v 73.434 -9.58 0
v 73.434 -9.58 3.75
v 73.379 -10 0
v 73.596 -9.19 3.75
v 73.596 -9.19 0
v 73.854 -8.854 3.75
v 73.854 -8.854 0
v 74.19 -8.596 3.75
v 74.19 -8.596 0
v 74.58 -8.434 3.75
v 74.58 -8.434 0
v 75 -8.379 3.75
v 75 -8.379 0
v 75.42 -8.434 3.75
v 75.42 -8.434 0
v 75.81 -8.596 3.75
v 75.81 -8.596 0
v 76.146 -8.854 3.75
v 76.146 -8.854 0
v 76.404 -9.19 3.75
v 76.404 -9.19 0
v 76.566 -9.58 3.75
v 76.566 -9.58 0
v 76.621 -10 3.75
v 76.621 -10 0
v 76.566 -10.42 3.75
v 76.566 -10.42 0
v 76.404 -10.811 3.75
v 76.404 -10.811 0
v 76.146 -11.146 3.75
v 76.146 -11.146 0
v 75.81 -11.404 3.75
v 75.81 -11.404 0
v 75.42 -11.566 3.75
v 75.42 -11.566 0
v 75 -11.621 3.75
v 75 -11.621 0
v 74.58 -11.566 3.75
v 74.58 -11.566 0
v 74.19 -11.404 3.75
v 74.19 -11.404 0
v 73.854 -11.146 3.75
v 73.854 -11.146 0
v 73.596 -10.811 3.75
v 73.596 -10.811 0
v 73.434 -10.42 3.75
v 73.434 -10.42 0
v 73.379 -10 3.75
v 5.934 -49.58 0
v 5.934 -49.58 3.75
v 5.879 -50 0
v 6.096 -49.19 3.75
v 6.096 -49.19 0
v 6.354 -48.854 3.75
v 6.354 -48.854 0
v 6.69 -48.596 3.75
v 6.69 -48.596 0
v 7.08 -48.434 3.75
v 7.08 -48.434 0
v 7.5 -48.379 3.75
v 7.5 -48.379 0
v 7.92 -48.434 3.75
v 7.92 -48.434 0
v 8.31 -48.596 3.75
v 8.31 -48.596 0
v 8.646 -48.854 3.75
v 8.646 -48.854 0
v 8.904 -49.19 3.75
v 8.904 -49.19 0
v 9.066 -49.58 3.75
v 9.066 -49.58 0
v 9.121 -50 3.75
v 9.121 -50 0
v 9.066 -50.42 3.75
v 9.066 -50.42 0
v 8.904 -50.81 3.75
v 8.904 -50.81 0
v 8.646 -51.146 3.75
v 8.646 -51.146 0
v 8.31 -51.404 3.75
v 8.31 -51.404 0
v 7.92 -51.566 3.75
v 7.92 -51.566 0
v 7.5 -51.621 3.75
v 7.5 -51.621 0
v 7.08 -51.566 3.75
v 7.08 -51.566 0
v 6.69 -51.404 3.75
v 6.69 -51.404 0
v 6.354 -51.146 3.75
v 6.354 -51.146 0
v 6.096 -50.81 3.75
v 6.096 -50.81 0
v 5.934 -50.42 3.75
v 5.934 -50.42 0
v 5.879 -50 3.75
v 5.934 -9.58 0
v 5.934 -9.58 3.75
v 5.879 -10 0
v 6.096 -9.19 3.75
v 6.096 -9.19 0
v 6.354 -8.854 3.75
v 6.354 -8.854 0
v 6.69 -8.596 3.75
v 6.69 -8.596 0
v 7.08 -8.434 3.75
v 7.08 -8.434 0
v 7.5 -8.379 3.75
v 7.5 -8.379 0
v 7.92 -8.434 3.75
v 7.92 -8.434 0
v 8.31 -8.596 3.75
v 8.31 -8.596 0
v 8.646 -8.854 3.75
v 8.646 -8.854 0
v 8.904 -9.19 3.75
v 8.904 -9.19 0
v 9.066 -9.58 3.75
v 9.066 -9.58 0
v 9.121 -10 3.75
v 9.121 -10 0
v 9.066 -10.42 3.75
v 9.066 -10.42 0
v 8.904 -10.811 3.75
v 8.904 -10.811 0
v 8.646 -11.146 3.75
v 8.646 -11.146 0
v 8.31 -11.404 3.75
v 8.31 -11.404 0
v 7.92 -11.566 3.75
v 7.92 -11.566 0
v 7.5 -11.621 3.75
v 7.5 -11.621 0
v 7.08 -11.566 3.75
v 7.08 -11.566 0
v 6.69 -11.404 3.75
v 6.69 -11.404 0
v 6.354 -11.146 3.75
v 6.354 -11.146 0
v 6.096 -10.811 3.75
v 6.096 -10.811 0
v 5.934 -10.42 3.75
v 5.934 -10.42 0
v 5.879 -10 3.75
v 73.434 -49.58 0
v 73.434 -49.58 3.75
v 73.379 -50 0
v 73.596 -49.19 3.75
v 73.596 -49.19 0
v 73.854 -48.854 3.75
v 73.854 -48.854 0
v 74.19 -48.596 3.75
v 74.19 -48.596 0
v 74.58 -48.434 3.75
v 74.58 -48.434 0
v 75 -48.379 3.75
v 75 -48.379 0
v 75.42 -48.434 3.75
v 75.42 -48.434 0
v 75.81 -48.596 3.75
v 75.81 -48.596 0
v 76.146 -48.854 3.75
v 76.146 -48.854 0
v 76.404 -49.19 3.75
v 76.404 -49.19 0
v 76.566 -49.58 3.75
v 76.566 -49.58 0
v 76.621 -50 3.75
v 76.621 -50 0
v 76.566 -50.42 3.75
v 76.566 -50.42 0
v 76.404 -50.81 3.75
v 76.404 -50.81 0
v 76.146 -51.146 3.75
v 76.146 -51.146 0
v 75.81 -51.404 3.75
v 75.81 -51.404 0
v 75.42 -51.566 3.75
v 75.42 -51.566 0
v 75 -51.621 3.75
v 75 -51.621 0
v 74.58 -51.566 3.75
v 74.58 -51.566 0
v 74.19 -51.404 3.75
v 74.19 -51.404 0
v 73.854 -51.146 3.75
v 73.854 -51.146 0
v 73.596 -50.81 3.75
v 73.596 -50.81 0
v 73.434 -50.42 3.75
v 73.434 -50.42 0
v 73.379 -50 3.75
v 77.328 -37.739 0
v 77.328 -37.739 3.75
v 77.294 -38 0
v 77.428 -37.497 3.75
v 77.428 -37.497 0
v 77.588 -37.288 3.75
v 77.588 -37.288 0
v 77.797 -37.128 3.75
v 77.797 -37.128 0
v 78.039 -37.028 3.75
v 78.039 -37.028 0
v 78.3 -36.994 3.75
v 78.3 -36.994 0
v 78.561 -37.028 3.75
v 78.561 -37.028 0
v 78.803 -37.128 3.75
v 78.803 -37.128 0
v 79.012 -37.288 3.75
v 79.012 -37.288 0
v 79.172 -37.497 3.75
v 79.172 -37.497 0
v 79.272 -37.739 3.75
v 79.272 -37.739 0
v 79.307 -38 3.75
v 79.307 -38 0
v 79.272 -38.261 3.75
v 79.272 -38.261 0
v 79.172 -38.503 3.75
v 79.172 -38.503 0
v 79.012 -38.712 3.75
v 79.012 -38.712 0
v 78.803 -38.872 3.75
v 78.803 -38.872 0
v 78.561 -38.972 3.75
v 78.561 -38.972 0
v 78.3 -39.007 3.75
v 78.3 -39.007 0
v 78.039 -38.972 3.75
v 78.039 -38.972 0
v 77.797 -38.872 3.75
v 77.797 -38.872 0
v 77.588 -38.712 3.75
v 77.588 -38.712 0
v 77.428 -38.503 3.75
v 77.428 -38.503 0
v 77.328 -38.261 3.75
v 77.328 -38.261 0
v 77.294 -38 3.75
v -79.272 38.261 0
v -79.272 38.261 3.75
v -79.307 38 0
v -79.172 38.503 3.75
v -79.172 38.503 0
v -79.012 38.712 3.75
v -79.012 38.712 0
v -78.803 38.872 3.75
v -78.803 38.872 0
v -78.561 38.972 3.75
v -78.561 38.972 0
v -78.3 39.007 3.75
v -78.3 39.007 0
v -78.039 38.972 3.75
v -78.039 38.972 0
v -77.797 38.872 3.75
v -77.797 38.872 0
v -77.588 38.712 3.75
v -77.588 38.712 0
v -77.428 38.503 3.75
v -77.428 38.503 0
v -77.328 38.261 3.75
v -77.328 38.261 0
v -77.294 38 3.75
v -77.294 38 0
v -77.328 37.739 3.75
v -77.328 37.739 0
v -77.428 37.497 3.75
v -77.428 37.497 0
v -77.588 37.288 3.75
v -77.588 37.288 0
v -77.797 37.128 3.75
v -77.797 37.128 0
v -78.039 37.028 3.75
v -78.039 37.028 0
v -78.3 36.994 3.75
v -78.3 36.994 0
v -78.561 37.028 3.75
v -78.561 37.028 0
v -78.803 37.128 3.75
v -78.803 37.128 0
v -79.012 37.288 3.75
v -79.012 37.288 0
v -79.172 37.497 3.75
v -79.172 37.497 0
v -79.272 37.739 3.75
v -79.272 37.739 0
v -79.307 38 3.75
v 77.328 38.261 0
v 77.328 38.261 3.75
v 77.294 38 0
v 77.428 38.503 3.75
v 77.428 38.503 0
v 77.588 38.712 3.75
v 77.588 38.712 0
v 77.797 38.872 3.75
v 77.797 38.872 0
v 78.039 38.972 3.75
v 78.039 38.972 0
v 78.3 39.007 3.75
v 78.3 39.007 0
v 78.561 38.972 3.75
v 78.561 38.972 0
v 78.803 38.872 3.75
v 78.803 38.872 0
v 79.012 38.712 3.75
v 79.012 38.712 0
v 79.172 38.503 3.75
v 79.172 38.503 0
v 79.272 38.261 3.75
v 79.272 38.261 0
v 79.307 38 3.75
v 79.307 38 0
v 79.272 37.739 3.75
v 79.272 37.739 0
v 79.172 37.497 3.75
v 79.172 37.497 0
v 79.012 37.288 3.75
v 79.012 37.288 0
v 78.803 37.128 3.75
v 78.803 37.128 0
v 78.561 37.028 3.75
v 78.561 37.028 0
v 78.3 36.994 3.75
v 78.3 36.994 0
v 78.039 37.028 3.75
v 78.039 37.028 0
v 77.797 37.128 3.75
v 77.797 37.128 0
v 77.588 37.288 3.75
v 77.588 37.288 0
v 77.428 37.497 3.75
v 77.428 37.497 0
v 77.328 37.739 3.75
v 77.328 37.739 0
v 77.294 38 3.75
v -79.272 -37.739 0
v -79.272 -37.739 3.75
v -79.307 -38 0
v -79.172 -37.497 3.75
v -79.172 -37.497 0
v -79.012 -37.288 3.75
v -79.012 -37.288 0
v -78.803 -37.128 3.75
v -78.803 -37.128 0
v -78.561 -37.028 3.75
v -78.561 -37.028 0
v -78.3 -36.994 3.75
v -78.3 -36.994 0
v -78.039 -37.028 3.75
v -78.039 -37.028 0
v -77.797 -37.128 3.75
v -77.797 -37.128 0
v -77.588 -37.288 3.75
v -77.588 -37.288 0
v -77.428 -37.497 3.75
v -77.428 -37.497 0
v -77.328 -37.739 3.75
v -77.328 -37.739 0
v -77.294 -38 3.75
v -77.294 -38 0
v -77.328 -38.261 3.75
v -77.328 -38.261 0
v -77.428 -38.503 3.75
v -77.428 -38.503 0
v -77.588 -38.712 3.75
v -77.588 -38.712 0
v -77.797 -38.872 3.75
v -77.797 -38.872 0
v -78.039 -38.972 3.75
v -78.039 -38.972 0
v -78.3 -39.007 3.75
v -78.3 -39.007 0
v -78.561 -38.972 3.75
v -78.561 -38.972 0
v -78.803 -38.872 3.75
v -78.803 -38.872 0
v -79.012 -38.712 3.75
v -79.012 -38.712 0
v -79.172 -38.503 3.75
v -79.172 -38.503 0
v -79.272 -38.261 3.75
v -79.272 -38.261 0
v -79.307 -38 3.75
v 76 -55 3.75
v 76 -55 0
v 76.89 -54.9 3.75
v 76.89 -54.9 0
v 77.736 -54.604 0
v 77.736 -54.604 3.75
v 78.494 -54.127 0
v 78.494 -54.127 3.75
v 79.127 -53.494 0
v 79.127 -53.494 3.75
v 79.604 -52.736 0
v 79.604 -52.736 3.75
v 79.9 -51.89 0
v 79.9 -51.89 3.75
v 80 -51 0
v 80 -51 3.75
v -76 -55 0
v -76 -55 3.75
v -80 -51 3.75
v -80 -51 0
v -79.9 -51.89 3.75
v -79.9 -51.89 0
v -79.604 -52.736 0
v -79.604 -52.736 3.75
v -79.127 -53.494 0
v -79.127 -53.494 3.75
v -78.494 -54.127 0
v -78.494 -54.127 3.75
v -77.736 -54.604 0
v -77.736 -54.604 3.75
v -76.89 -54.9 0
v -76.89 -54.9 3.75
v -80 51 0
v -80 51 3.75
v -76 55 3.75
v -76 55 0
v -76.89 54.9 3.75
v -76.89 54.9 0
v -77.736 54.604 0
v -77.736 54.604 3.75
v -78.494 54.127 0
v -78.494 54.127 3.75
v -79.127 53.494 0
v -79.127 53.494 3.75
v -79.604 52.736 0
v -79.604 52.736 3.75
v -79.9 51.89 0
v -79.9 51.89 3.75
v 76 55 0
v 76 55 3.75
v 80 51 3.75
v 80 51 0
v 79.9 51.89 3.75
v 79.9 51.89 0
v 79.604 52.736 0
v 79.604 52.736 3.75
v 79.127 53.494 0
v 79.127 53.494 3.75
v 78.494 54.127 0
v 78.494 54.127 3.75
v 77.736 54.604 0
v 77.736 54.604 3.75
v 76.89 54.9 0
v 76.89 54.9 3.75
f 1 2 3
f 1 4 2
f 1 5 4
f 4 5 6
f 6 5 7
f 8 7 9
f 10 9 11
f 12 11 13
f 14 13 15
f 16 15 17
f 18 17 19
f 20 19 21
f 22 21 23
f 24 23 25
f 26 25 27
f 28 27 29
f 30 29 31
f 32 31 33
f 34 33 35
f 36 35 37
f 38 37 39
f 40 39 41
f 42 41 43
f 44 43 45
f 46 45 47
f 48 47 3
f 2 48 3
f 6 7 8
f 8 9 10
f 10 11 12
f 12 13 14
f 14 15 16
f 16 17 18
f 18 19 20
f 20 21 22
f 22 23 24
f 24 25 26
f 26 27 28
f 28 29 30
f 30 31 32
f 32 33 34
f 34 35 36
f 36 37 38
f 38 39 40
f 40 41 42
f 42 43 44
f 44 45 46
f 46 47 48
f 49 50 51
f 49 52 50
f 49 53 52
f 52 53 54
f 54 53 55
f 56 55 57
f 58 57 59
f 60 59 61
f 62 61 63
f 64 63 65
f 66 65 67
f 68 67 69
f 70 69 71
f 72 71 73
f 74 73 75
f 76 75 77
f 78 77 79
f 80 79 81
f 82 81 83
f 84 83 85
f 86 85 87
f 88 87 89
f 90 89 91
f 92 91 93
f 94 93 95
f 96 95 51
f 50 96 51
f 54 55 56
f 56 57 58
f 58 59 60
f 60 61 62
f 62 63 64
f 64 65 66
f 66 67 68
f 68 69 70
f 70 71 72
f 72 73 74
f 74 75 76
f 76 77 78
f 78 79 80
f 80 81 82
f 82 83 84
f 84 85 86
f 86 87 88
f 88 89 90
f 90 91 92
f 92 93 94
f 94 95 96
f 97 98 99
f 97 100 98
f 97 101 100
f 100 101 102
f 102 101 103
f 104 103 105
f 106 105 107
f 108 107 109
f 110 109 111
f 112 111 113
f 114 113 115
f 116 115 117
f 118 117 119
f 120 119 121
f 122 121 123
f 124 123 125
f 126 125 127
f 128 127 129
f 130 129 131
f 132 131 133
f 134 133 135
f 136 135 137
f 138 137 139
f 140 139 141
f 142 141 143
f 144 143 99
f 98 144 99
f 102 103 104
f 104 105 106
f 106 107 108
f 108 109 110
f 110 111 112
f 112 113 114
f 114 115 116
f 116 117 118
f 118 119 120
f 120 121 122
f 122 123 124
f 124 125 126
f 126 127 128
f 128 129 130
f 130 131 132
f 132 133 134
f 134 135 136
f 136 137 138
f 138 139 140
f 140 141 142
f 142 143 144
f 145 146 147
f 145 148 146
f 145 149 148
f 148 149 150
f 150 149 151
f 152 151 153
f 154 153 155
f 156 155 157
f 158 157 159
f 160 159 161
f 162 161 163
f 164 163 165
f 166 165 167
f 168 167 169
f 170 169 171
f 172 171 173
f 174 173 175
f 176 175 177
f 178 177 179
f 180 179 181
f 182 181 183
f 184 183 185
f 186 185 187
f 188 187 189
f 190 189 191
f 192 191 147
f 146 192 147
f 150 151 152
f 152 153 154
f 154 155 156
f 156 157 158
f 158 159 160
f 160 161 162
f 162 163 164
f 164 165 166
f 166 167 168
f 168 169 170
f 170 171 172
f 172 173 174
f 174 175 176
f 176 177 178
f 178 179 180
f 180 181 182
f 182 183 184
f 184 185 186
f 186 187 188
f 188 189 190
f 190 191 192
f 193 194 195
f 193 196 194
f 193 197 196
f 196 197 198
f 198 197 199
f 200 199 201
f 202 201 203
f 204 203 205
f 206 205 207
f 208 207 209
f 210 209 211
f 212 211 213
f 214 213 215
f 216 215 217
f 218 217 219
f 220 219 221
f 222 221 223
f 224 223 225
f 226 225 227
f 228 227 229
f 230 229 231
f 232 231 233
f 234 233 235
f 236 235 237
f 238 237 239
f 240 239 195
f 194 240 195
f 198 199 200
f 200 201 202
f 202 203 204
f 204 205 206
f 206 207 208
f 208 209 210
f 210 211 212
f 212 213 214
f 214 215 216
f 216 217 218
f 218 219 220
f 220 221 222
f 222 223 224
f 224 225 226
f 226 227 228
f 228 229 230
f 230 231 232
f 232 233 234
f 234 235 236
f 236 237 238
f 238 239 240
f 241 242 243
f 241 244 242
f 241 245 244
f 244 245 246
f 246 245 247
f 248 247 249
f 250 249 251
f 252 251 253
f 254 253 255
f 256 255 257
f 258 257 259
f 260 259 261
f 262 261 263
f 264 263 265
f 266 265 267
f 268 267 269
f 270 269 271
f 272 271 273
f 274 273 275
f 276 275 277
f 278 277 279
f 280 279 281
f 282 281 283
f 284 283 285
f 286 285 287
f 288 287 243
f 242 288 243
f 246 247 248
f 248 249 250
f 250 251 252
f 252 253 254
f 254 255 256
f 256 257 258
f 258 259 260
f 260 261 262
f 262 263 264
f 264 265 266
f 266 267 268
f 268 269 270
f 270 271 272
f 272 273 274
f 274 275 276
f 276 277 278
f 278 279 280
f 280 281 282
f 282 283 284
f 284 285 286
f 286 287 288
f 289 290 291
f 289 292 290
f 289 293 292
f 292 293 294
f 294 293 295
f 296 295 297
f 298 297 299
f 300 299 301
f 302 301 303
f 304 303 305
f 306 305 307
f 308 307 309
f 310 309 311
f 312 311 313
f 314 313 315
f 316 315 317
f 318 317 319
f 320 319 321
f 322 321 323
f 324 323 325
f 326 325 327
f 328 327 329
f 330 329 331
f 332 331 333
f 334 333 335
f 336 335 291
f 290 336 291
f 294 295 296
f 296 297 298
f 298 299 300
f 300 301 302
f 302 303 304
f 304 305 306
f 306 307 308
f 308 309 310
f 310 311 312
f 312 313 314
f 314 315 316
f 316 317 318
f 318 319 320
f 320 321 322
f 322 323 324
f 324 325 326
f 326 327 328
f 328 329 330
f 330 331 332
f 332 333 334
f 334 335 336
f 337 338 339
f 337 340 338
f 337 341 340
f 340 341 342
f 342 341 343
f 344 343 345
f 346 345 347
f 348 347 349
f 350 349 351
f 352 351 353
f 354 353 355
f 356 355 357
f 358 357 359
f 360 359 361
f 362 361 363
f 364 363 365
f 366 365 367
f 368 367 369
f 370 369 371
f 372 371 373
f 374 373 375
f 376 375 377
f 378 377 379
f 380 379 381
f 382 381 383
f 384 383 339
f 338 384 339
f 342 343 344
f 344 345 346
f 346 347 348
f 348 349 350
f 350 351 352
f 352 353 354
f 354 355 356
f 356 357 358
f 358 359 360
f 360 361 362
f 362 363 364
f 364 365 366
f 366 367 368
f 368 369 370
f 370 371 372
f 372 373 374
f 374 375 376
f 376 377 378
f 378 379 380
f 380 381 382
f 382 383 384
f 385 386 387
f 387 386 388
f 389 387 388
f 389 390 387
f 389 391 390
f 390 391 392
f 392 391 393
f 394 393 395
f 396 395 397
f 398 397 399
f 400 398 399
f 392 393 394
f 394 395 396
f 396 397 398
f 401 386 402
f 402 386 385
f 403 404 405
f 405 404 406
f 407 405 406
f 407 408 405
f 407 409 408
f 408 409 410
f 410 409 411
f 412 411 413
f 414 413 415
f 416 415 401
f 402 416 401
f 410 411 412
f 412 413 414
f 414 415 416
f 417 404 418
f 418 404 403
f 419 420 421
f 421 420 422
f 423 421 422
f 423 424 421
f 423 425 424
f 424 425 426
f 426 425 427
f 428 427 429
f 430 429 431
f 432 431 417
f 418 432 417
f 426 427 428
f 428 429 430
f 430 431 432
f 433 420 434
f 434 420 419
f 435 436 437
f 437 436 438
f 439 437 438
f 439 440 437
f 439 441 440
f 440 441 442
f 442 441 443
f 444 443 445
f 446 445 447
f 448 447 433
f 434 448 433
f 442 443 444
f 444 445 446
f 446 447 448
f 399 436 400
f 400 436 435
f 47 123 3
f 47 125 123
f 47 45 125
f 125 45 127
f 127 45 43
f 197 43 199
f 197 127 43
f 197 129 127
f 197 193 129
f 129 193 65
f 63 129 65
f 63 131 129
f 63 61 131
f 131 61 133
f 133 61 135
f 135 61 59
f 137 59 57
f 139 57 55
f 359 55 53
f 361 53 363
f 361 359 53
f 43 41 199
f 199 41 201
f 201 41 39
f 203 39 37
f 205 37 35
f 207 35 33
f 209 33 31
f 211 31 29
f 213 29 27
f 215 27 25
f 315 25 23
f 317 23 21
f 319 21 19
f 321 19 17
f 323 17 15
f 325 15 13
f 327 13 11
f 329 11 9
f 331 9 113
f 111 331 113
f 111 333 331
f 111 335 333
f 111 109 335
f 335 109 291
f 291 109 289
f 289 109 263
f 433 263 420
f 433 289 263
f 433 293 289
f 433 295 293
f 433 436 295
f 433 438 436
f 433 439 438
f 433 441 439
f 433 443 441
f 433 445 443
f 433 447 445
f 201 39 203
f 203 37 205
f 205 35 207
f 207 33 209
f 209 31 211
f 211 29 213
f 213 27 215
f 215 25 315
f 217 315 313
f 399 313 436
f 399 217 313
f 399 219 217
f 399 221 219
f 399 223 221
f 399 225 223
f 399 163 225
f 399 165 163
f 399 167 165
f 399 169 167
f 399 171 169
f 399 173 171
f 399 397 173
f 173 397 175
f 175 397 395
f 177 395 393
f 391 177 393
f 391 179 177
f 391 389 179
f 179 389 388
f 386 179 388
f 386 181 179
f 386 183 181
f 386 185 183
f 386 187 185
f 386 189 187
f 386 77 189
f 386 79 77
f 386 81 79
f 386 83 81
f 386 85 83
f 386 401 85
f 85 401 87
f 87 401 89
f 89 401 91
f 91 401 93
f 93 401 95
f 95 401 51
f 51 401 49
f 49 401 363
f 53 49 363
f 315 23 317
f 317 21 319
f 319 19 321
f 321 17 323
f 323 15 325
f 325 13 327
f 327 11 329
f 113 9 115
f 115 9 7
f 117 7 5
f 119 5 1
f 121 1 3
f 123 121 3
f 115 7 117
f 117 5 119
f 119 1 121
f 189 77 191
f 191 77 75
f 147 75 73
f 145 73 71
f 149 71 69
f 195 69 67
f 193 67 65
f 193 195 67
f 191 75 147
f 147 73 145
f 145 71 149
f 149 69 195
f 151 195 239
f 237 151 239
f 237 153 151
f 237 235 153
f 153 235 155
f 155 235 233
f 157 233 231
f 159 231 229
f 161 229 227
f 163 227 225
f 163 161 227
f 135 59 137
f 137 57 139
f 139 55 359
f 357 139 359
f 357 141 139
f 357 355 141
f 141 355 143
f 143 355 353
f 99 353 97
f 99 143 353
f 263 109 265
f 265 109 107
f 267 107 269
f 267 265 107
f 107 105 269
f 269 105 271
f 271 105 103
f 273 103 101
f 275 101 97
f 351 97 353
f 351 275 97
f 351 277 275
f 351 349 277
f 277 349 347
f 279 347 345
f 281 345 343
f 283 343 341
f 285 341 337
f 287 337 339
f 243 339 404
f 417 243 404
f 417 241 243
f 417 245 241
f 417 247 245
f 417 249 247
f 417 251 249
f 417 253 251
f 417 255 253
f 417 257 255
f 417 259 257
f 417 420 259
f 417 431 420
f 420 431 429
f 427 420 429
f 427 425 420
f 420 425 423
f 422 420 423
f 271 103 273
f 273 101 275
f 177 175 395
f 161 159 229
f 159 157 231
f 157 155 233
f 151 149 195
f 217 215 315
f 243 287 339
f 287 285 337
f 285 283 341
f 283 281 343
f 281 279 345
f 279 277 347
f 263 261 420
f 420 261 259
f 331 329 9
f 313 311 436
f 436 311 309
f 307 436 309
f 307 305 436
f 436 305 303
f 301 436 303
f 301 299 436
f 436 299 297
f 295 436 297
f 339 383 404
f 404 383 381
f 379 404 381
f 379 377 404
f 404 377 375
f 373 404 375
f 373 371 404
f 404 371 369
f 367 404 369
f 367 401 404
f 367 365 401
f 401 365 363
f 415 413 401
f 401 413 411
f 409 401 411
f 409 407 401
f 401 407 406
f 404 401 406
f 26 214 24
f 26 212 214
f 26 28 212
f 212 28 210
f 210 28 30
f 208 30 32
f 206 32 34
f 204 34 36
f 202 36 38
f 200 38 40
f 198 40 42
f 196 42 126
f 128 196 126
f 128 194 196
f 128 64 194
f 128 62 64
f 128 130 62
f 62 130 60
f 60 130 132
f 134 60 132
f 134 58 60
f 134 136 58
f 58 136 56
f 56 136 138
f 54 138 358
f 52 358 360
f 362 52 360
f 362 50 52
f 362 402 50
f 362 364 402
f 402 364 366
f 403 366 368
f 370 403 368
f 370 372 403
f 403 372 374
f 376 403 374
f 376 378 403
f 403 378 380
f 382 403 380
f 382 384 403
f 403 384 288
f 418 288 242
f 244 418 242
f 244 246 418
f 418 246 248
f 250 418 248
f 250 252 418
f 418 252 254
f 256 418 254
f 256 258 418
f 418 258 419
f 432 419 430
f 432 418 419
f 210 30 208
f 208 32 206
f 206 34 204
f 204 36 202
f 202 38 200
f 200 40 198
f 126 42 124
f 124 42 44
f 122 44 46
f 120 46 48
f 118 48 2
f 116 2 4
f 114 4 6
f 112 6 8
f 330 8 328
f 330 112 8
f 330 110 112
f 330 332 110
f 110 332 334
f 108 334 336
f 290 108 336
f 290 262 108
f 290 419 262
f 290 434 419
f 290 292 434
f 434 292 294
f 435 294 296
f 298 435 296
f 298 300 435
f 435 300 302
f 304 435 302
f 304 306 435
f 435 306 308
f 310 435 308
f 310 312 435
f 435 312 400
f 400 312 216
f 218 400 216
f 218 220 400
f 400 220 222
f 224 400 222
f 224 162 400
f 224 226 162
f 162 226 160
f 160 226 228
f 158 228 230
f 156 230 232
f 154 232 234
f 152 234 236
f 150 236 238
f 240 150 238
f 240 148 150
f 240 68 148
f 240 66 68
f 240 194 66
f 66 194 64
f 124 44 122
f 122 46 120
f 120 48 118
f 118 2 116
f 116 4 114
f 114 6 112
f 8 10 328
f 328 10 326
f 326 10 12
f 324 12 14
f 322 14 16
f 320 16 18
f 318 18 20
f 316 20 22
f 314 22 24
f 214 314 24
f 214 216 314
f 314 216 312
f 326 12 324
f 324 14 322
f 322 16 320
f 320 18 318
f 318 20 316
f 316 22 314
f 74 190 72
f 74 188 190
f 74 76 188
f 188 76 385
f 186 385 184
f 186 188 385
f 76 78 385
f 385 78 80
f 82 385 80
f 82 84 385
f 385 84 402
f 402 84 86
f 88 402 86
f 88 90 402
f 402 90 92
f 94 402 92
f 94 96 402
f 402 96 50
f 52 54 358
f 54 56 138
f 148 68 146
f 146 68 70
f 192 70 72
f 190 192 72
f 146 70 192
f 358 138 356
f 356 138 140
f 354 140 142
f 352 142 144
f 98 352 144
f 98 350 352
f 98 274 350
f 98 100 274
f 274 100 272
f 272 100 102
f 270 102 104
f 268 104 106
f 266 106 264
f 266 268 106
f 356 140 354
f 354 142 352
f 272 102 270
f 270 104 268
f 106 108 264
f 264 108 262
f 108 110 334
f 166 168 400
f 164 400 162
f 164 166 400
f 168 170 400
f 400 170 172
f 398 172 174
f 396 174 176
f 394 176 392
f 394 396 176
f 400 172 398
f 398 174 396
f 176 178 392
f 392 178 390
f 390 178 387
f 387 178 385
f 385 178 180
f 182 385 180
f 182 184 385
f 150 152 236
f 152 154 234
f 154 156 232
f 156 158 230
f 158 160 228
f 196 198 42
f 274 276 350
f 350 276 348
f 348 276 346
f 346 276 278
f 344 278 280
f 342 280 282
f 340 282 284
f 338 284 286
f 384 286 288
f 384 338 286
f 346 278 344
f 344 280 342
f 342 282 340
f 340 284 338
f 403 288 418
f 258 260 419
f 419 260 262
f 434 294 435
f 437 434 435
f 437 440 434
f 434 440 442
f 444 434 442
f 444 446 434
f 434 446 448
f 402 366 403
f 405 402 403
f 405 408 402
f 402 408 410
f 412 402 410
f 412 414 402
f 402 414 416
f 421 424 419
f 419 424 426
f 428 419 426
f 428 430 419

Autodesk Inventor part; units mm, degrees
ref_plane "YZ Plane" through (0, 0, 0) normal (1, 0, 0) x (0, 1, 0)
ref_plane "XZ Plane" through (0, 0, 0) normal (0, 1, 0) x (-1, 0, 0)
ref_plane "XY Plane" through (0, 0, 0) normal (0, 0, 1) x (1, 0, 0)
sketch "Sketch1" plane through (0, 0, 0) normal (0, 0, 1) x (1, 0, 0)
  line L0 (-76, 55) -> (76, 55)
  line L1 (80, 51) -> (80, -51)
  line L2 (76, -55) -> (-76, -55)
  line L3 (-80, -51) -> (-80, 51)
  arc A0 (80, 51) -> (76, 55) centre (76, 51) ccw
  arc A1 (76, -55) -> (80, -51) centre (76, -51) ccw
  arc A2 (-76, 55) -> (-80, 51) centre (-76, 51) ccw
  arc A3 (-80, -51) -> (-76, -55) centre (-76, -51) ccw
  point P0 (0, 0)
  point P1 (-80, 55)
  point P2 (80, -55)
  point P3 (80, 55)
  dimension "d0" = 160
  dimension "d1" = 110
  dimension "d2" = 55
  dimension "d3" = 80
  dimension "d4" = 4
extrude "Extrusion1" add sketch "Sketch1" along normal blind 3.75
sketch "Sketch2" plane through (0, 0, 3.75) normal (0, 0, 1) x (1, 0, 0)
  point P0 (0, 0)
  point P1 (-78.3, 38)
  point P2 (78.3, 38)
  point P3 (78.3, -38)
  point P4 (-78.3, -38)
  dimension "d7" = 156.6
  dimension "d8" = 76
  dimension "d9" = 38
  dimension "d10" = 78.3
hole "Hole1" at (-78.3, 38, 3.75) at (78.3, 38, 3.75) at (78.3, -38, 3.75) at (-78.3, -38, 3.75) direction (0, 0, -1) diameter 2.013 end through all thread size "M2.5x0.45" class "6H" standard "ISO Metric profile"
sketch "Sketch3" plane through (0, 0, 3.75) normal (0, 0, 1) x (1, 0, 0)
  line L0 (-76, -55) -> (76, -55) projected
  line L1 (80, -51) -> (80, 51) projected
  point P0 (0, 0)
  point P1 (7.5, -50)
  point P2 (7.5, -10)
  point P3 (75, -10)
  point P4 (75, -50)
  dimension "d18" = 40
  dimension "d19" = 67.5
  dimension "d20" = 5
  dimension "d21" = 5
hole "Hole2" at (7.5, -50, 3.75) at (7.5, -10, 3.75) at (75, -10, 3.75) at (75, -50, 3.75) direction (0, 0, -1) diameter 3.242 end through all thread size "M4x0.7" class "6H" standard "ISO Metric profile"
equation "\"d2\" = 0.5 * d1"
equation "\"d3\" = 0.5 * d0"
equation "\"d9\" = 0.5 * d8"
equation "\"d10\" = 0.5 * d7"
properties part number "sampleHolderBase_v1"
